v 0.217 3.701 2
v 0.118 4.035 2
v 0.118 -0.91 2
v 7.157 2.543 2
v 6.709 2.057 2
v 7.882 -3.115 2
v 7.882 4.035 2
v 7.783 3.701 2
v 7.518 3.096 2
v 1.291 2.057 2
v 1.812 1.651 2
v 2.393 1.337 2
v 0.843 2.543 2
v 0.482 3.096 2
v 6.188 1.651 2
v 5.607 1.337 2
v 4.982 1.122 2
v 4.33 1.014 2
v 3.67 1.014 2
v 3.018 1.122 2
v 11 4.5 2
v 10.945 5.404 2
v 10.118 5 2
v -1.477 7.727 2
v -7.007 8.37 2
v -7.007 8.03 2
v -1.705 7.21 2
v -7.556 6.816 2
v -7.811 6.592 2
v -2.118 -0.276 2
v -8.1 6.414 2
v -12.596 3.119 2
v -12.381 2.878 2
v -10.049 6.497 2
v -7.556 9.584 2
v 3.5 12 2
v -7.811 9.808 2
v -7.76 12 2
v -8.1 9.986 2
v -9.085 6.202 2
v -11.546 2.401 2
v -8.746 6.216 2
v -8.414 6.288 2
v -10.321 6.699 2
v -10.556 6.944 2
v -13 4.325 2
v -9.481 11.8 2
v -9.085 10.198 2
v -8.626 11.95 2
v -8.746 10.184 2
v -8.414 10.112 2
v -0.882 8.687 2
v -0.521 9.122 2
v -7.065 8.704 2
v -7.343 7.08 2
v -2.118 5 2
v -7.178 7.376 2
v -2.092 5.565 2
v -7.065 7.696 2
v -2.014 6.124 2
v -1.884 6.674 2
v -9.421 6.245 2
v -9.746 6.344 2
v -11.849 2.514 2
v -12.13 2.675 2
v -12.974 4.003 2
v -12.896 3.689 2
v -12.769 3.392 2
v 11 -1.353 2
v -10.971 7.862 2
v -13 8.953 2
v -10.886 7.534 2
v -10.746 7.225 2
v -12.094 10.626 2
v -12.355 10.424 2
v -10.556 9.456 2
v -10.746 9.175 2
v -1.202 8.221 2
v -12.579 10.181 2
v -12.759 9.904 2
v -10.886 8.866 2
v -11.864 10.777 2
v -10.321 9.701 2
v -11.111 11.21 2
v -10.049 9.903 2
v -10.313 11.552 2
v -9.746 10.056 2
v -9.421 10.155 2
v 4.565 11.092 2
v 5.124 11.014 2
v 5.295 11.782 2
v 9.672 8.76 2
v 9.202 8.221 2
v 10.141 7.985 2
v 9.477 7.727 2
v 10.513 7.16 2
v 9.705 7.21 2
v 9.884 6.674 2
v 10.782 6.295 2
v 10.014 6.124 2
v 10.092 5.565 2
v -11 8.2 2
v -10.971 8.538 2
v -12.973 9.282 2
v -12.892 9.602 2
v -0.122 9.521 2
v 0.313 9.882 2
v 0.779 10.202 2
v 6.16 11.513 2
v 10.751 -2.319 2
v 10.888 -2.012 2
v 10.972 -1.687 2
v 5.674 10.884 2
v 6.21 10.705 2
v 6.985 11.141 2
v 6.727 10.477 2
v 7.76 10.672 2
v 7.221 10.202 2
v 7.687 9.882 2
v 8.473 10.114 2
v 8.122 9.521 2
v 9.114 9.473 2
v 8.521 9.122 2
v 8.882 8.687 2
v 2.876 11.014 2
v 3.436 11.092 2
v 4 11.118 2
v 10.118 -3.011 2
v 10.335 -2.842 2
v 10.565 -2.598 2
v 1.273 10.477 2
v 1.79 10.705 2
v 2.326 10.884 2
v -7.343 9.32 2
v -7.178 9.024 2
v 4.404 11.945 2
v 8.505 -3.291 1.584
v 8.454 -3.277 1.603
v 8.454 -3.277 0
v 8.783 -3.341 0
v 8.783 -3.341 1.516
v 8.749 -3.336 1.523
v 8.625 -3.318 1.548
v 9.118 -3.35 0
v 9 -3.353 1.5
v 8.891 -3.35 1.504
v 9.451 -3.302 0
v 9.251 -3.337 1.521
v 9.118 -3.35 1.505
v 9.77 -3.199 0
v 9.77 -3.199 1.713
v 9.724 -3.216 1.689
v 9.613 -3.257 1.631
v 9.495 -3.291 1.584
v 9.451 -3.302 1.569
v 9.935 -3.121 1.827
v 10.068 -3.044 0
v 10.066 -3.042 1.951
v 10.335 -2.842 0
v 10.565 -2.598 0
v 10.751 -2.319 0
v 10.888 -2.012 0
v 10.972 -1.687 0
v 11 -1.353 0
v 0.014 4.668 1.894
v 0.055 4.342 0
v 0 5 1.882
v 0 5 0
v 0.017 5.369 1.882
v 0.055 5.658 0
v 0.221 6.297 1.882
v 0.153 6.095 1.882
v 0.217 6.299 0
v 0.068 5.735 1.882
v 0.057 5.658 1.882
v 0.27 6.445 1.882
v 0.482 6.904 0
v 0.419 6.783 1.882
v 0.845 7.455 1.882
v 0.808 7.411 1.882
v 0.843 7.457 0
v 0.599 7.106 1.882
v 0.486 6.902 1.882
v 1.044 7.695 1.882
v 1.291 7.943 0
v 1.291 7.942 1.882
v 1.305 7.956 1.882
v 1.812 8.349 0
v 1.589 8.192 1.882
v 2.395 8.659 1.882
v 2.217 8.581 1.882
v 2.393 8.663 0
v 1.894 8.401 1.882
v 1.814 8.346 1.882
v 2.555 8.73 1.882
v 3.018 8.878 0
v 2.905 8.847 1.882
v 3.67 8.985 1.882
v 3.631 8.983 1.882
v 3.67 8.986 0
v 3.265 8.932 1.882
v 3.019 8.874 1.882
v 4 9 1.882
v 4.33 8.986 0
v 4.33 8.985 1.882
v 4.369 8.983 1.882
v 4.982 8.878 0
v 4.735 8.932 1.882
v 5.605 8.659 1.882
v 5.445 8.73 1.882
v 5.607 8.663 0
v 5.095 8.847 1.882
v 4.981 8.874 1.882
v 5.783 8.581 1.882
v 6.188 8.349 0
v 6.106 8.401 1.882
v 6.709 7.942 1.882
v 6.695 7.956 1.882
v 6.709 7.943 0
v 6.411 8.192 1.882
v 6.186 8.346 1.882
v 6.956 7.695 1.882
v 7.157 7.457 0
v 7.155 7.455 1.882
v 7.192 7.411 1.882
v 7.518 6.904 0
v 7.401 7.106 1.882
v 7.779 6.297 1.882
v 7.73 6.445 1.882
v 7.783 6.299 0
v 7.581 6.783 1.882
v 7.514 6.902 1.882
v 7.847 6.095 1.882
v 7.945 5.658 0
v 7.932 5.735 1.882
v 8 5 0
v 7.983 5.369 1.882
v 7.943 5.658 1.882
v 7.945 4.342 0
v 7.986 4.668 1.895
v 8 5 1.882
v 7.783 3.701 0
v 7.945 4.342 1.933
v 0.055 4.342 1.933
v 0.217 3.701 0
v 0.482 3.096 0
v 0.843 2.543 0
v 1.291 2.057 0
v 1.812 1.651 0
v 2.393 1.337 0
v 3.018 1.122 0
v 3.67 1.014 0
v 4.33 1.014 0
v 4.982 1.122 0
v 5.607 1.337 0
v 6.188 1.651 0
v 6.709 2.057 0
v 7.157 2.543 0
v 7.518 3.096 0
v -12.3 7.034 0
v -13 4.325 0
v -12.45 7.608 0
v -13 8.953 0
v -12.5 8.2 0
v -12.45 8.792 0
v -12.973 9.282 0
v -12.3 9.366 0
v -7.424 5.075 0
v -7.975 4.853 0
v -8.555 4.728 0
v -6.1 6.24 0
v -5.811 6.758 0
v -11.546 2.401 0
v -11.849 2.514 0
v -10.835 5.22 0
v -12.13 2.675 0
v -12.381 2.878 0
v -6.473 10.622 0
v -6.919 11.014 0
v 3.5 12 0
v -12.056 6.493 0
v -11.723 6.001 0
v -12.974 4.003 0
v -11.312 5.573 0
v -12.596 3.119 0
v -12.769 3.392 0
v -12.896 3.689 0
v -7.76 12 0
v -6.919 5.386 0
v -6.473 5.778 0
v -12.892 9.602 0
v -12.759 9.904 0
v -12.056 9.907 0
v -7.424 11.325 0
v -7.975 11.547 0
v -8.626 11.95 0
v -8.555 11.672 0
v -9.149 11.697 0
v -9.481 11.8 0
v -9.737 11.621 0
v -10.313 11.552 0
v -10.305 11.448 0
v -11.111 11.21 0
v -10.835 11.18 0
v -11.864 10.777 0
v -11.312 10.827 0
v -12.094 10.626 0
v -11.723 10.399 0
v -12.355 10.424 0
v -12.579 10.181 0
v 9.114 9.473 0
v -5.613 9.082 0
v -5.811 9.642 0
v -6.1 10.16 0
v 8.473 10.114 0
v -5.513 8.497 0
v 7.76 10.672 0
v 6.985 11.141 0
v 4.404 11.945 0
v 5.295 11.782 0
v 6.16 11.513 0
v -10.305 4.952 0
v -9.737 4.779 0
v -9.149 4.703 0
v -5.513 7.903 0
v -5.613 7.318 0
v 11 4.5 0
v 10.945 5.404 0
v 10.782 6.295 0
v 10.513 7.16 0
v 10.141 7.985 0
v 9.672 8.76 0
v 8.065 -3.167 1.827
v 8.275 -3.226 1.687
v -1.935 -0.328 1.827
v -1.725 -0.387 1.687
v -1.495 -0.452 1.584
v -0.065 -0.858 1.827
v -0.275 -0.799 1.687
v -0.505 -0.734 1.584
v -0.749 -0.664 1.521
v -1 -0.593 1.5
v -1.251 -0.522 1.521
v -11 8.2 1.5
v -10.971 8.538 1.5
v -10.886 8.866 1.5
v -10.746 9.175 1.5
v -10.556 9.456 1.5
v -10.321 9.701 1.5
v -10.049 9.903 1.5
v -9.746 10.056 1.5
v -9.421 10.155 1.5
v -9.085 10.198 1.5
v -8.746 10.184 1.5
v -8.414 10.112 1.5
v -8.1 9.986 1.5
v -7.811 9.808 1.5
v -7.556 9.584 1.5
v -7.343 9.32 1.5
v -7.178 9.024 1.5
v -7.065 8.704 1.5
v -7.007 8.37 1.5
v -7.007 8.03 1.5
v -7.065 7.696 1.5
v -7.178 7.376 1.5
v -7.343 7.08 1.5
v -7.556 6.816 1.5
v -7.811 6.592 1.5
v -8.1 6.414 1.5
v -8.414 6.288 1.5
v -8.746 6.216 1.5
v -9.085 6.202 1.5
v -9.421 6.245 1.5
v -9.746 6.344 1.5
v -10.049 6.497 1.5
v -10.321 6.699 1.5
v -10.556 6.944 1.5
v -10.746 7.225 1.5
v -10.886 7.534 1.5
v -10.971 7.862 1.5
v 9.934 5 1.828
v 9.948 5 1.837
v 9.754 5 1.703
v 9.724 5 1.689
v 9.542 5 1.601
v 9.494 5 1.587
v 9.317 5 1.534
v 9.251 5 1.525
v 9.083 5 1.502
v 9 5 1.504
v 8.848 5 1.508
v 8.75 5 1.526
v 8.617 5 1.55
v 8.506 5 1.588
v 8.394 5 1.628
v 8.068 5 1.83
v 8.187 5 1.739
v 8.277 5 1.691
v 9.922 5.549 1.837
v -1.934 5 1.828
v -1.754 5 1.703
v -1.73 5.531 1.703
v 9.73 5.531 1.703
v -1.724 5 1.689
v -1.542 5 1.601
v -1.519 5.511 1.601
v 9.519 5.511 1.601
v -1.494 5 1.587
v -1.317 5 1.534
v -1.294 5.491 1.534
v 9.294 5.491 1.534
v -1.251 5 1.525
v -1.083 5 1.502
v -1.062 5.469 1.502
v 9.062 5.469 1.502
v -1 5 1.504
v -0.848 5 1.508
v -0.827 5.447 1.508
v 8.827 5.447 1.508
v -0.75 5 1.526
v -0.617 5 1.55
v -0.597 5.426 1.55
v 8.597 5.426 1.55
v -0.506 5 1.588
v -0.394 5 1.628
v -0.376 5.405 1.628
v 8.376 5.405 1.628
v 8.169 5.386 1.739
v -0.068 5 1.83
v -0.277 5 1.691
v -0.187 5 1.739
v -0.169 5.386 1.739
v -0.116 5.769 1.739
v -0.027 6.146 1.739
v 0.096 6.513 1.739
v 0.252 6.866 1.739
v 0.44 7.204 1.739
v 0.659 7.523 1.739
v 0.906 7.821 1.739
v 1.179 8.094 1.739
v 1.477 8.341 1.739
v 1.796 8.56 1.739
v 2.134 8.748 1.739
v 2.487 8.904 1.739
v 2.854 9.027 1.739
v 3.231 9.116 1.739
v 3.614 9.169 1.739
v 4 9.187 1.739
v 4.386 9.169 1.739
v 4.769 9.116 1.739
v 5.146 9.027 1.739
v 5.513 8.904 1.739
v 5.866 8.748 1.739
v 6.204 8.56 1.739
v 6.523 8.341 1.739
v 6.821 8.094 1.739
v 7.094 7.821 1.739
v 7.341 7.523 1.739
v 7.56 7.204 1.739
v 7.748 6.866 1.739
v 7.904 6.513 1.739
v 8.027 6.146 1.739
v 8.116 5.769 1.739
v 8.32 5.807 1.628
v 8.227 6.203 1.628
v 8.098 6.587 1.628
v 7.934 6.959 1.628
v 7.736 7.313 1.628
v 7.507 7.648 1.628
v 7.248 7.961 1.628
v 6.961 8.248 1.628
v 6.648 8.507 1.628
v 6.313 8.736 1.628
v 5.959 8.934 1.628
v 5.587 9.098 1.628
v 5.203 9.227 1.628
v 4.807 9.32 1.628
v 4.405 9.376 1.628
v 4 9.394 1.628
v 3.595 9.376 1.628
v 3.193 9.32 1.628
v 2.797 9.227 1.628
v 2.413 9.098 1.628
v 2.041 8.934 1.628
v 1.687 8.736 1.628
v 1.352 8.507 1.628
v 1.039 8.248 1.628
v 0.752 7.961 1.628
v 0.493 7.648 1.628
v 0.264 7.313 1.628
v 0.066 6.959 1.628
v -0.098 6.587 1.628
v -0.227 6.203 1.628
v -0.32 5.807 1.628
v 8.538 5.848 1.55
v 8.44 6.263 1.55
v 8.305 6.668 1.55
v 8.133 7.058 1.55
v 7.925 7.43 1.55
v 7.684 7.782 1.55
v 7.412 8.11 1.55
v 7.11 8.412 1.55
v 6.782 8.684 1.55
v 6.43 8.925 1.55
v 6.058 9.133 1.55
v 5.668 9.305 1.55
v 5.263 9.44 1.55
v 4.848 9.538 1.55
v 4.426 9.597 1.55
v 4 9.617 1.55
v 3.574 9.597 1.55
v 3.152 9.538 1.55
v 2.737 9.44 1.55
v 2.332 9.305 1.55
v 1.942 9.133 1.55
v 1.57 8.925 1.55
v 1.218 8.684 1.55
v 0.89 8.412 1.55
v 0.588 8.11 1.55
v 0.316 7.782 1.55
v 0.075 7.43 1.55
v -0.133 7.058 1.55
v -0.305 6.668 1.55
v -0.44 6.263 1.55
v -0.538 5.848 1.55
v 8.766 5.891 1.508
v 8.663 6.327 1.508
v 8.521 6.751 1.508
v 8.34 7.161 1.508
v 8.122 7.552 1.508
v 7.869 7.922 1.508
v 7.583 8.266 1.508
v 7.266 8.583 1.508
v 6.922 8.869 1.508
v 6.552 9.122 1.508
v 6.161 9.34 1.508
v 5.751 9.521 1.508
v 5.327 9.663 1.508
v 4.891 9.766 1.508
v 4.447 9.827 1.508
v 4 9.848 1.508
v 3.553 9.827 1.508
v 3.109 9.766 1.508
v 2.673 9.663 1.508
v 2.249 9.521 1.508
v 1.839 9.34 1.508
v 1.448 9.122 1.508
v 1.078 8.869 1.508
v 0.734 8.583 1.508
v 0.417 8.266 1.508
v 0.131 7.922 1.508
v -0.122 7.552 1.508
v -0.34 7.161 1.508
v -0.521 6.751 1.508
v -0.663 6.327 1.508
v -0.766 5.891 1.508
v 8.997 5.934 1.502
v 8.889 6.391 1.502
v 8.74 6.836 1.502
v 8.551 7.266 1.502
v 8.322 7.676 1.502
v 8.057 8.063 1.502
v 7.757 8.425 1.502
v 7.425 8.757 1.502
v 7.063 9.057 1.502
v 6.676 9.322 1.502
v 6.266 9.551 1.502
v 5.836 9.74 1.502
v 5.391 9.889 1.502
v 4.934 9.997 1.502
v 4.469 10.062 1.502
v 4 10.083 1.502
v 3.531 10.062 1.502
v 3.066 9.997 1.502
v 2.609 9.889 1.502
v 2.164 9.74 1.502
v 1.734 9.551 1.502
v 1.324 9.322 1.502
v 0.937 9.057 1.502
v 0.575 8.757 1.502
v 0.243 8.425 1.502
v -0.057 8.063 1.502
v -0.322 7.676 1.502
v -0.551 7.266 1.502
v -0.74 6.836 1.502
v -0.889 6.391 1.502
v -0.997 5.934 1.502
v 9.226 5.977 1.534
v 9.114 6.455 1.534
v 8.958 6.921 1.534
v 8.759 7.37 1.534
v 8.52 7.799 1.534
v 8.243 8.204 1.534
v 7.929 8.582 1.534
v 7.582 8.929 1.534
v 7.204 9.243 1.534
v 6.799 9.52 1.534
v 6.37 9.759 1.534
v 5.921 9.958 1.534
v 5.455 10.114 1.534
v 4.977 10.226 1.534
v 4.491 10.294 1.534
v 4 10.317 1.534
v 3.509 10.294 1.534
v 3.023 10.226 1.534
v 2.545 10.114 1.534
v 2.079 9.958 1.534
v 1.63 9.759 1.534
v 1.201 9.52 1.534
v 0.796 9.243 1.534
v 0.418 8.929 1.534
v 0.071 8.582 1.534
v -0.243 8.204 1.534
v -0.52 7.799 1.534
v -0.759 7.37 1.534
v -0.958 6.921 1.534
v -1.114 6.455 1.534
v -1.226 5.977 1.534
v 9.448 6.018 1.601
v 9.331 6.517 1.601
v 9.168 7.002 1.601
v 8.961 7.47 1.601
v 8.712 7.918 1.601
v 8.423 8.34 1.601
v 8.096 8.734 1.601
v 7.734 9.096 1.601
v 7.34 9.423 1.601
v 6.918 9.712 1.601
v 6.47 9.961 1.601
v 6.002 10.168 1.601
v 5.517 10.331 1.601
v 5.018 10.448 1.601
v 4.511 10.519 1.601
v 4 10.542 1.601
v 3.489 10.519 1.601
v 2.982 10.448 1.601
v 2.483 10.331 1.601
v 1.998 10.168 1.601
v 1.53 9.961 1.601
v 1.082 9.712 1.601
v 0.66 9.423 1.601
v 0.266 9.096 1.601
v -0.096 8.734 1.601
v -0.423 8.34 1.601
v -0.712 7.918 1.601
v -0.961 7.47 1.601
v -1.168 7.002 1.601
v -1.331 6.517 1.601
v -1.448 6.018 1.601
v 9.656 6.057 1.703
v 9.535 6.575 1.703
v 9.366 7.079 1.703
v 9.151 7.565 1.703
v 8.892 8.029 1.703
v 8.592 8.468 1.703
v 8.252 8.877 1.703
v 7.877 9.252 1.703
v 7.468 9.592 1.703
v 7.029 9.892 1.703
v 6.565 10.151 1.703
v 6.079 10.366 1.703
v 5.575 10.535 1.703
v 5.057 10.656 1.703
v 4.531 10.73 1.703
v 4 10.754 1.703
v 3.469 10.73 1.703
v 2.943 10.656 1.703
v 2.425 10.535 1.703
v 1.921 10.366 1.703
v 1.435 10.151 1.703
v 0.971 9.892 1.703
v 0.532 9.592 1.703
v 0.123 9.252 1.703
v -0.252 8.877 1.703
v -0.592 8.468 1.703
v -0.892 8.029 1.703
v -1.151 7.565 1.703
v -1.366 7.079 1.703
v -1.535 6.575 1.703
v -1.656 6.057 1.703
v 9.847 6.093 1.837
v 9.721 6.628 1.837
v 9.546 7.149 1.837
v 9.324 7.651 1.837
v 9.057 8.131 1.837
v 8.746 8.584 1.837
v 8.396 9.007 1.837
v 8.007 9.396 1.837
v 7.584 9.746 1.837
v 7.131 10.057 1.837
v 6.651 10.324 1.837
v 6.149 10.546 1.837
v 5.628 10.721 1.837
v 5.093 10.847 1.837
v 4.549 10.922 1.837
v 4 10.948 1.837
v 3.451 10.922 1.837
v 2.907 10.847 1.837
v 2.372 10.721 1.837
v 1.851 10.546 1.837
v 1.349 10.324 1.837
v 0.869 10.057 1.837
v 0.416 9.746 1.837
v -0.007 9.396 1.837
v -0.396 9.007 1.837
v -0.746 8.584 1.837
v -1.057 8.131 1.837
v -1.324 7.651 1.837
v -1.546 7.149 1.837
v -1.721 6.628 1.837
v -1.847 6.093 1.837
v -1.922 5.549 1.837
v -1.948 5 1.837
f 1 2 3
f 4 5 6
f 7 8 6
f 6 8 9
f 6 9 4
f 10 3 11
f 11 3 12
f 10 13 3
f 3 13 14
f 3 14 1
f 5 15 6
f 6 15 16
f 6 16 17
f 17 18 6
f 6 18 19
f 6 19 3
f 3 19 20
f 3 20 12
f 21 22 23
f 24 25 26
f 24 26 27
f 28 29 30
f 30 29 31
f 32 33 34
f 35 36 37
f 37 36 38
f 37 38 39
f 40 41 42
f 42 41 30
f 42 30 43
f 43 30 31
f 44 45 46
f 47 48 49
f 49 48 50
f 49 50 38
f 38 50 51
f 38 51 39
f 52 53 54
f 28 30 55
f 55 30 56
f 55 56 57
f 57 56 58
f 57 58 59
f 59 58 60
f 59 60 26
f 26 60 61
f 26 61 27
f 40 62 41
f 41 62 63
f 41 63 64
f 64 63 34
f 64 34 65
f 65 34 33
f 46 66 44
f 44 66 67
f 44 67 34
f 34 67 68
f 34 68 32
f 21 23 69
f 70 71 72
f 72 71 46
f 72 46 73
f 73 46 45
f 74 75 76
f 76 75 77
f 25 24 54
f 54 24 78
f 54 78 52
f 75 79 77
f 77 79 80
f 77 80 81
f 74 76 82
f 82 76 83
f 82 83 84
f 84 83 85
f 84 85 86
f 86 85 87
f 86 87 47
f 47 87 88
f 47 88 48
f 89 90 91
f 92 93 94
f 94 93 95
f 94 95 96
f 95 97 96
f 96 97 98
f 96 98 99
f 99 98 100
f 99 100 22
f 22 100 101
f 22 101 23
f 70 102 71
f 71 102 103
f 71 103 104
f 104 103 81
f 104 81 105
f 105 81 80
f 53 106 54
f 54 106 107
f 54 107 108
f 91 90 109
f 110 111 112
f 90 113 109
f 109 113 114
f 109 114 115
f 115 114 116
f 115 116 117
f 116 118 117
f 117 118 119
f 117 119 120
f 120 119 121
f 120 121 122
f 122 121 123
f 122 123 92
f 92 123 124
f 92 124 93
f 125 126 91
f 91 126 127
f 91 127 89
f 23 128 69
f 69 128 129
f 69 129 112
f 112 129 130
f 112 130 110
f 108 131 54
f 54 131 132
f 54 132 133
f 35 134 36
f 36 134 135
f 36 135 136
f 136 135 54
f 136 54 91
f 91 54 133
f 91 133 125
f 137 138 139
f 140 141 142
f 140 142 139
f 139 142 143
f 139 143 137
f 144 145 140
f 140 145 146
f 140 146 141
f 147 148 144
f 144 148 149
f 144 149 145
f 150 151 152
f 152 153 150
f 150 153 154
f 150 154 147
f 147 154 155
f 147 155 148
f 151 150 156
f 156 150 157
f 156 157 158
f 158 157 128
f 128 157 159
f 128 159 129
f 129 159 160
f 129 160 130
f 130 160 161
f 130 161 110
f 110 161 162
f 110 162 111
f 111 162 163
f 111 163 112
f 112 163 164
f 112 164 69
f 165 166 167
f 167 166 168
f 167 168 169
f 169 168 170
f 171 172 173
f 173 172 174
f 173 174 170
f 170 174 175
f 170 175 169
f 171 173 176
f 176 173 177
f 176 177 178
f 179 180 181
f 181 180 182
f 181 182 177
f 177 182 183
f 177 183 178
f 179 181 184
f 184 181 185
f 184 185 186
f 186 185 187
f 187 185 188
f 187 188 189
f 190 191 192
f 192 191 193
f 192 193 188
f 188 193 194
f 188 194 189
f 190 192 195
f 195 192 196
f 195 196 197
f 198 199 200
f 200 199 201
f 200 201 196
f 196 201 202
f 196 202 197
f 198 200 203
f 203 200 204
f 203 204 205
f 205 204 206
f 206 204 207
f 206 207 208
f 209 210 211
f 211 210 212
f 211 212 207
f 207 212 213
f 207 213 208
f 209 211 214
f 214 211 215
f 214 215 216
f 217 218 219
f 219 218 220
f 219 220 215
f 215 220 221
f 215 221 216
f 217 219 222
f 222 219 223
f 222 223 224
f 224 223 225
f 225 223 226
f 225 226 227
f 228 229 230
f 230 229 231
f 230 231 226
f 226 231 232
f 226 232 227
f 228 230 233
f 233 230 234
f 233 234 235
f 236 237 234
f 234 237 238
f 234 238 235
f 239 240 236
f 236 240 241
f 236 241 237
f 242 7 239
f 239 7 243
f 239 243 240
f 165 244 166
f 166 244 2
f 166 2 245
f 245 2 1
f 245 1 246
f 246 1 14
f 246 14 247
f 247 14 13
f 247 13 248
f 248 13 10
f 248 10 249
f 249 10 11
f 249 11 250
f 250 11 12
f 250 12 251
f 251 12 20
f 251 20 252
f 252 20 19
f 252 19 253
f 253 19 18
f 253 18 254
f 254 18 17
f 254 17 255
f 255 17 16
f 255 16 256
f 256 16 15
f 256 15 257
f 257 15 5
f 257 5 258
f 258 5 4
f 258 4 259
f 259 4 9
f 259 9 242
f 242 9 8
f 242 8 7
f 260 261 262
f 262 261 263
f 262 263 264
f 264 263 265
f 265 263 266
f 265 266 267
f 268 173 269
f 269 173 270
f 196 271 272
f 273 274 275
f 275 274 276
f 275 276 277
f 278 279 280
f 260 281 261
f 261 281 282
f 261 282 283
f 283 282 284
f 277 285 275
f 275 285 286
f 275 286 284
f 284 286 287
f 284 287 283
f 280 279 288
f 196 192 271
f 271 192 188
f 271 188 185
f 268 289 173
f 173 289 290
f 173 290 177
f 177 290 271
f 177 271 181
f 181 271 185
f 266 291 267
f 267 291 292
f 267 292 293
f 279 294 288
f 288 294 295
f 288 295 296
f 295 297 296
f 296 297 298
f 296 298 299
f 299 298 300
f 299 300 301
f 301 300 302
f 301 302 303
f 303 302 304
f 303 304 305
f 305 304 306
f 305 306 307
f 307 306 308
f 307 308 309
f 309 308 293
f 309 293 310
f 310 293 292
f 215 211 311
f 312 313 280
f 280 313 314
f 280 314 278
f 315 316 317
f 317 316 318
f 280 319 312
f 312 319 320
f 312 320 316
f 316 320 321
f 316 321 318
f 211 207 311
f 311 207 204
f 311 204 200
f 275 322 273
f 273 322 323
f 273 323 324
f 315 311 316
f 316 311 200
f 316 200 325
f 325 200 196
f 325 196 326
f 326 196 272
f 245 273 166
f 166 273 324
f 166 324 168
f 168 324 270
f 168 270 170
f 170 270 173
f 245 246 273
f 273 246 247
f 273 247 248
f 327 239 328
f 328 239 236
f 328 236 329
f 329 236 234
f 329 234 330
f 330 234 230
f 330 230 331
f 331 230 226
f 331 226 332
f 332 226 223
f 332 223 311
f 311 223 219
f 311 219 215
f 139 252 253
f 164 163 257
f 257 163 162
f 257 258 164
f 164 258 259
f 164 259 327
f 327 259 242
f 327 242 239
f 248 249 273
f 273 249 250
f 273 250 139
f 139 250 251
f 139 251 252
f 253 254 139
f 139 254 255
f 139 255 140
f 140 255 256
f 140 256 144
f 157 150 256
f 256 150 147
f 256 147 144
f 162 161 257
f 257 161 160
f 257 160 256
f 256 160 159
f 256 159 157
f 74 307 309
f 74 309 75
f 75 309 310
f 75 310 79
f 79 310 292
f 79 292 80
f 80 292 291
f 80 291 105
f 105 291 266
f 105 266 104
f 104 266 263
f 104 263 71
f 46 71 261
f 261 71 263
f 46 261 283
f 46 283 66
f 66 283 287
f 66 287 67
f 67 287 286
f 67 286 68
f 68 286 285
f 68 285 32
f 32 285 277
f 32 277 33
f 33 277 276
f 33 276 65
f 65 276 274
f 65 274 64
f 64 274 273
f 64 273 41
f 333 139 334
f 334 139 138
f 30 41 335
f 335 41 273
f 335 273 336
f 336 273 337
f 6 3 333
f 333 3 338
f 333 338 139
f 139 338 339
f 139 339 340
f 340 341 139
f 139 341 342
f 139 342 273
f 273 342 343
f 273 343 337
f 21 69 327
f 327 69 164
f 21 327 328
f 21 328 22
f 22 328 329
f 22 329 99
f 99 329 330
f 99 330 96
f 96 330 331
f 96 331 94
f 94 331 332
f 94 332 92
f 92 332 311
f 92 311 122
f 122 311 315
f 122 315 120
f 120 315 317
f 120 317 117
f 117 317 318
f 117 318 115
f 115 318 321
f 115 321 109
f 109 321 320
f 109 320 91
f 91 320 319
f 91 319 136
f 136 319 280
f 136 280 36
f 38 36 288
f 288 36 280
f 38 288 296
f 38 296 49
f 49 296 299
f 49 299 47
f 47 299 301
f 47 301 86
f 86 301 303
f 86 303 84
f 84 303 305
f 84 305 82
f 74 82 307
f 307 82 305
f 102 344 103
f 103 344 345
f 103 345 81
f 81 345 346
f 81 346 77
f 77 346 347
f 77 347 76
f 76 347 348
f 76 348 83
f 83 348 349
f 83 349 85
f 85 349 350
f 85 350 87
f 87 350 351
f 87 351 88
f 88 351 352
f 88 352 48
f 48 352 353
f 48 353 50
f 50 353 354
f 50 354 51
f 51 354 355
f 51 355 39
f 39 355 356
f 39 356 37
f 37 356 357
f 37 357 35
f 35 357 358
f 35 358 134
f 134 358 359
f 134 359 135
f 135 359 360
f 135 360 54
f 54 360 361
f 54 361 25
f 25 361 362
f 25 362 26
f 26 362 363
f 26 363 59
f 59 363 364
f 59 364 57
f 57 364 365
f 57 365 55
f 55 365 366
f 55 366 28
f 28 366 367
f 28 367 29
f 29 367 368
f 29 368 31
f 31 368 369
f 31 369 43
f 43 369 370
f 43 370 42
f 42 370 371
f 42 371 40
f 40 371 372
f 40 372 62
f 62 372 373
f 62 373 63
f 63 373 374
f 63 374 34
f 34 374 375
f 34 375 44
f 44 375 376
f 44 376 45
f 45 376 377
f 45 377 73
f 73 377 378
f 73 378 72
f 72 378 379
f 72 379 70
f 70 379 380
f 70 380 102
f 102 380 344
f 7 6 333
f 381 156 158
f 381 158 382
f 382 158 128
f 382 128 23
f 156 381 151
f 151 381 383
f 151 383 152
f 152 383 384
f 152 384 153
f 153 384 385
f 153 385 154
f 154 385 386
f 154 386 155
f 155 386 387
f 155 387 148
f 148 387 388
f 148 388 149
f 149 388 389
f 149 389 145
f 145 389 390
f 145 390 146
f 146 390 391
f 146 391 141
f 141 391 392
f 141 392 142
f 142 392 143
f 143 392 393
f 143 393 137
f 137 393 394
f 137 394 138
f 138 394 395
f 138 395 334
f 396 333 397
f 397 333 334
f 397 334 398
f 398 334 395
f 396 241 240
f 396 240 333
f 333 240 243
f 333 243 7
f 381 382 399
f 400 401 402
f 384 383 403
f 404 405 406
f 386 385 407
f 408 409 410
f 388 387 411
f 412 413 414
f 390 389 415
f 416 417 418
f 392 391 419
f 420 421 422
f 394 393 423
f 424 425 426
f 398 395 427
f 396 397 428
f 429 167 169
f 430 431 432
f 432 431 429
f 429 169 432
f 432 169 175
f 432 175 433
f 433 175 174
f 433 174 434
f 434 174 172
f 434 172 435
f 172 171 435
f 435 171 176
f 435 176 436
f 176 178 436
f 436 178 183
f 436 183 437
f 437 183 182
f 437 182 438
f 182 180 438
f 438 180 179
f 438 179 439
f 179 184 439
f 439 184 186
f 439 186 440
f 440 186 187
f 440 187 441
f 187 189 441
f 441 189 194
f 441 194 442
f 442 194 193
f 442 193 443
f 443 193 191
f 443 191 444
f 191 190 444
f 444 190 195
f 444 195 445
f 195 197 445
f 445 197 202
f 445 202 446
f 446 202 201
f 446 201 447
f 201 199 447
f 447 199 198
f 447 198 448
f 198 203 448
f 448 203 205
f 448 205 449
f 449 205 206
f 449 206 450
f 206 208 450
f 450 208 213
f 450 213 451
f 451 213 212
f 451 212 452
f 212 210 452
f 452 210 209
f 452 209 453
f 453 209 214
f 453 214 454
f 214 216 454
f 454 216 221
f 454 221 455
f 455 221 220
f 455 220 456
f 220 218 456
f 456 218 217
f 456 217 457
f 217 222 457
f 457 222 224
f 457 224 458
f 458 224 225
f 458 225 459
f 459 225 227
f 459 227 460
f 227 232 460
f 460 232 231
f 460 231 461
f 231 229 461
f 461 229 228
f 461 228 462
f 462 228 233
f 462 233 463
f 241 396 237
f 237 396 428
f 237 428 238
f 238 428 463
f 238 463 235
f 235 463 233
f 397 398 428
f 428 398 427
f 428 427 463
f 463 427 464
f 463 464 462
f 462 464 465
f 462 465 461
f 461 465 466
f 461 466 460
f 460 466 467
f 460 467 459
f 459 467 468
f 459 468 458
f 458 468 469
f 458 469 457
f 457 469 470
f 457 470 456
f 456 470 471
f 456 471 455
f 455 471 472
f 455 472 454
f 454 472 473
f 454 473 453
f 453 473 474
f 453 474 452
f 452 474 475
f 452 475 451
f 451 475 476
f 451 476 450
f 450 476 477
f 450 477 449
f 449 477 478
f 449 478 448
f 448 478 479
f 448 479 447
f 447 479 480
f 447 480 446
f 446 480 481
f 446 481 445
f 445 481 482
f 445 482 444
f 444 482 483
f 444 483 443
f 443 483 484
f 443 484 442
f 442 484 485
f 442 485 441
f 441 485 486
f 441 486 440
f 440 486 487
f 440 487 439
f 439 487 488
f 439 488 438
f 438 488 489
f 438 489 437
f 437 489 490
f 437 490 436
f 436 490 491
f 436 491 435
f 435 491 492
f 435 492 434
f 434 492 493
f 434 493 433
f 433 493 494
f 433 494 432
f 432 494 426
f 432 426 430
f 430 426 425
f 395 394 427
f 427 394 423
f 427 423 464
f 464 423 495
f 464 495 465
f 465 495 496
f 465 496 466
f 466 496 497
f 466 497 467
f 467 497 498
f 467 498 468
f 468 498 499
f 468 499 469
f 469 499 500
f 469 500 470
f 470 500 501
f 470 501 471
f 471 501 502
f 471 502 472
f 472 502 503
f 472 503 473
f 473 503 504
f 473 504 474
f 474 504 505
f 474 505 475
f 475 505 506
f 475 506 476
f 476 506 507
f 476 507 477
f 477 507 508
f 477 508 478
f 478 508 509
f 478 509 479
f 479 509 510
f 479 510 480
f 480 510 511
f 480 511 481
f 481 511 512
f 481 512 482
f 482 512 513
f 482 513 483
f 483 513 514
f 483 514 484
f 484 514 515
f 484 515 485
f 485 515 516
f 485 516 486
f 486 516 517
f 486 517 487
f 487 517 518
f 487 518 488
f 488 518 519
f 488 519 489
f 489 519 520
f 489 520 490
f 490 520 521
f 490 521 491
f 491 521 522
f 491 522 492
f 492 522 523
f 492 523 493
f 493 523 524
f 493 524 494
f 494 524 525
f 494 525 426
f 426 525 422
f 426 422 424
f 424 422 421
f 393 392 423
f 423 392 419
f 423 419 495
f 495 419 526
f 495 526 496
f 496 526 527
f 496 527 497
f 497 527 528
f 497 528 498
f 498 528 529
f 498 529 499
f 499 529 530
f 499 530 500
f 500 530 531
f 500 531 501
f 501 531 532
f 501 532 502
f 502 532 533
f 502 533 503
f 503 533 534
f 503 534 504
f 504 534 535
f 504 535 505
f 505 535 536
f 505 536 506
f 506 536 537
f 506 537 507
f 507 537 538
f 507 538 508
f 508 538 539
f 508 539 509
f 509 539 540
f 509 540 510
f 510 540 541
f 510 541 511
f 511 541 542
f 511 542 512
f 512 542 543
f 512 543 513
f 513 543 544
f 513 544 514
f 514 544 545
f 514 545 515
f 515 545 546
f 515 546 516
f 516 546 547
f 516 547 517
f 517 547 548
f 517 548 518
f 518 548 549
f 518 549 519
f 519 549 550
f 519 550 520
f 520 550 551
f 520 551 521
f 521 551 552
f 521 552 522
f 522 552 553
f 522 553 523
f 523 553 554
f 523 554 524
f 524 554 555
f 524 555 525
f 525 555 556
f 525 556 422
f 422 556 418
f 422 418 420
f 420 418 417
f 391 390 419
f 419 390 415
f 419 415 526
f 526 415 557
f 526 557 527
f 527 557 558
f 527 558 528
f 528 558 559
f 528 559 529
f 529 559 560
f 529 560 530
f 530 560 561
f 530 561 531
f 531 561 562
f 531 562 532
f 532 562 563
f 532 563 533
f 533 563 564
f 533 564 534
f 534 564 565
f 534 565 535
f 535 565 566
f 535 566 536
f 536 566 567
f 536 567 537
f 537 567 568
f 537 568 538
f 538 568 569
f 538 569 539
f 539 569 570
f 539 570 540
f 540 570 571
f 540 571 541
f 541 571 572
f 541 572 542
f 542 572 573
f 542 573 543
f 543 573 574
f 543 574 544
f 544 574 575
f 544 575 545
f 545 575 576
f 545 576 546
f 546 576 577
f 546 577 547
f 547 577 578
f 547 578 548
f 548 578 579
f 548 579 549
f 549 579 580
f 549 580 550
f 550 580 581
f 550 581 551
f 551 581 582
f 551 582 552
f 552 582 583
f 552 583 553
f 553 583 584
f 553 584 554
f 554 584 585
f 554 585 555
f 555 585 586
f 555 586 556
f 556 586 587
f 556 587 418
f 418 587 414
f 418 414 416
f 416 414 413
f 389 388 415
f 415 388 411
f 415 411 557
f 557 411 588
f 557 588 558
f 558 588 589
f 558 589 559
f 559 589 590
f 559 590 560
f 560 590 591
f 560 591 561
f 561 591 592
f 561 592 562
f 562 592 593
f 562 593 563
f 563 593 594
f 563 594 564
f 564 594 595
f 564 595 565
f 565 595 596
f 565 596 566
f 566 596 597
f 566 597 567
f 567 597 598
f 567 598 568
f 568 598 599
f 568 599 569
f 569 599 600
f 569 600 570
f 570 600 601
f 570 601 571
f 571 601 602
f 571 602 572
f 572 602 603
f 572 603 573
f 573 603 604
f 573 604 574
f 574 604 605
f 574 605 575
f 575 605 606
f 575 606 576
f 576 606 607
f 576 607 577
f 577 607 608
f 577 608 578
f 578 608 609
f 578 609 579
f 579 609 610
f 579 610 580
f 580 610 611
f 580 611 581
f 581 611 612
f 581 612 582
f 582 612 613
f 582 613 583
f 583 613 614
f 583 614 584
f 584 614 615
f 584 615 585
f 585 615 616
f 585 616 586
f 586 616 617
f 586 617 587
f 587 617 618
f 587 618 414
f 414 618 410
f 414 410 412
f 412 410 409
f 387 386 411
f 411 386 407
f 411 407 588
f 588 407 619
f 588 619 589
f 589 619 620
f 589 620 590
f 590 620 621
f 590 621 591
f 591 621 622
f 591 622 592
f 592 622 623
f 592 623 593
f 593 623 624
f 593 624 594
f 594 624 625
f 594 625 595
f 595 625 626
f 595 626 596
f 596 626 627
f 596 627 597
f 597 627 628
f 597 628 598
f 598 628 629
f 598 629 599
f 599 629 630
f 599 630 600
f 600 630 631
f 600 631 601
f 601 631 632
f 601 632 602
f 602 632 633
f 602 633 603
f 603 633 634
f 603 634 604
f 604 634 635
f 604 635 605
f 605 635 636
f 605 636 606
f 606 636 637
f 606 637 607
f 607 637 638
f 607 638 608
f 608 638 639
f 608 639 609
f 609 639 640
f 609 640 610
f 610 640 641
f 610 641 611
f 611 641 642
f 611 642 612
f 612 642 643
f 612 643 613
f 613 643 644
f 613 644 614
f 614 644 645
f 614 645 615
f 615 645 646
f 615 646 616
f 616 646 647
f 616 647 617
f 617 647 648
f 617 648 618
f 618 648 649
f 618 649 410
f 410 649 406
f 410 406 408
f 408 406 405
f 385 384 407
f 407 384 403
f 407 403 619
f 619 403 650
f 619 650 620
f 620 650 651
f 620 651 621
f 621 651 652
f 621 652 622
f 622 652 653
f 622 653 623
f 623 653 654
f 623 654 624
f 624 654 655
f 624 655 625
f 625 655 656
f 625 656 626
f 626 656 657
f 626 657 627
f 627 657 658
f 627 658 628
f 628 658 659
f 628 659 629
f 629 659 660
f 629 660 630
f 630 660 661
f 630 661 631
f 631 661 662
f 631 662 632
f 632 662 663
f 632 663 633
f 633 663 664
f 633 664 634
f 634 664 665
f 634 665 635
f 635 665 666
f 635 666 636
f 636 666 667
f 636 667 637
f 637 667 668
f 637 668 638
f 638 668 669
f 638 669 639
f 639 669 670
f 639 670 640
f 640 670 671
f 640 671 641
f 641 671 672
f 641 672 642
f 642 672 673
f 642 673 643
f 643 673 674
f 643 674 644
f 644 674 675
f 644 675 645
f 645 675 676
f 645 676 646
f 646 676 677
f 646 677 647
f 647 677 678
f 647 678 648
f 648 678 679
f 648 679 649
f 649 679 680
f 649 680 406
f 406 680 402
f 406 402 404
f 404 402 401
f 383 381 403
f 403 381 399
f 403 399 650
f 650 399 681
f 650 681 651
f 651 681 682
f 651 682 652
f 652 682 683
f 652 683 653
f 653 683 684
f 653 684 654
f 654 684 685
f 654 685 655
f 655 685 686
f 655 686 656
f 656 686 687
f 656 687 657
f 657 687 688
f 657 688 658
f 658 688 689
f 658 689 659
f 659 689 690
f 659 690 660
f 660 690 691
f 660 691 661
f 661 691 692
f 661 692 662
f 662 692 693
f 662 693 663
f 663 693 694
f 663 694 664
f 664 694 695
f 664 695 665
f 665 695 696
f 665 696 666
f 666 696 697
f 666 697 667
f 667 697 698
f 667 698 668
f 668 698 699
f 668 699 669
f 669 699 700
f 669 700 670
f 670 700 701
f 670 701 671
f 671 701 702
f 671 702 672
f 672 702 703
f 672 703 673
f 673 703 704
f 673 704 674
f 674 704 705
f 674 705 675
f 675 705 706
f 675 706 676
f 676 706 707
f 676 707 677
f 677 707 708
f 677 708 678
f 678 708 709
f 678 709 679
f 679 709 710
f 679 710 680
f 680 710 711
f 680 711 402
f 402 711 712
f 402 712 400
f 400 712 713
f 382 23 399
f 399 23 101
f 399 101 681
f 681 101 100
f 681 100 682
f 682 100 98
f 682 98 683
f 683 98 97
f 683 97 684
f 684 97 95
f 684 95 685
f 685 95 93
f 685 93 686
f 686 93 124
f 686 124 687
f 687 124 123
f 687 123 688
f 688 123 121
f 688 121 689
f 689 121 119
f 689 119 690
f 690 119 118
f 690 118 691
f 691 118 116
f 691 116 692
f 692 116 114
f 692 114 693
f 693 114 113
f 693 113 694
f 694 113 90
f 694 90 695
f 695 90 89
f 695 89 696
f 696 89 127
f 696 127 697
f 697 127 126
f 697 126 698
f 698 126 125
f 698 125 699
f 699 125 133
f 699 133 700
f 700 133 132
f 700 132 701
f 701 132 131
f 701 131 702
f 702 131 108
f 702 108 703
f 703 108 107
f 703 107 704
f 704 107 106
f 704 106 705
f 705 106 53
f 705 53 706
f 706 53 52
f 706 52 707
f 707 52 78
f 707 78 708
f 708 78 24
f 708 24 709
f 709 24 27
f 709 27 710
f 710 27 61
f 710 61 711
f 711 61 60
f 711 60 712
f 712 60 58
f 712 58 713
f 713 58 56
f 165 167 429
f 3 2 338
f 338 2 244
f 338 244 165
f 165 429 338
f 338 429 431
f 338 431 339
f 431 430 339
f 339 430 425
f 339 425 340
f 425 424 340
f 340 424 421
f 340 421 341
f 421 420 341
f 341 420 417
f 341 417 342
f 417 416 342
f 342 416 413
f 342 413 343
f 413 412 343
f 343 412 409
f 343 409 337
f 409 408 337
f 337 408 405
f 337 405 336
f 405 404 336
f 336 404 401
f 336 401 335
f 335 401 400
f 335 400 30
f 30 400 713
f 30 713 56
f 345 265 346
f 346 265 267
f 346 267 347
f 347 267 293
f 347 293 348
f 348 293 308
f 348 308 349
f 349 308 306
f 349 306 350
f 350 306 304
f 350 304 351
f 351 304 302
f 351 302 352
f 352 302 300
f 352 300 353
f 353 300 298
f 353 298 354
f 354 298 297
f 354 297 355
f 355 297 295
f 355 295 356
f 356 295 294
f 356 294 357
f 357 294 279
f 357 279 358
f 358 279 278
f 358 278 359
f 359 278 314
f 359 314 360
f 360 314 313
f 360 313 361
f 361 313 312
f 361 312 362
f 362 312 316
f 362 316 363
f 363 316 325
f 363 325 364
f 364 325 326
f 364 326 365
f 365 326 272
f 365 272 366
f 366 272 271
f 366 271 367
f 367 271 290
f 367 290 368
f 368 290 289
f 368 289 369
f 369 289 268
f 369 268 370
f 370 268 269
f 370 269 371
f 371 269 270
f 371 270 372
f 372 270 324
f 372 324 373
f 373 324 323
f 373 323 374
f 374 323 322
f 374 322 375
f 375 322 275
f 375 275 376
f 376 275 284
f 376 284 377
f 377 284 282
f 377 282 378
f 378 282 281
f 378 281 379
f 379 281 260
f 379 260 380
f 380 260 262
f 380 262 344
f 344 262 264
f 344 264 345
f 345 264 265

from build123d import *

# Parameters (mm, degrees)
SKETCH1_R            = 4
SKETCH1_R_2          = 2
BOSS_EXTRUDE1_DEPTH  = 2
CUT_SWEEP2_PROFILE_R = 1.5
CHAMFER1_SIZE        = 1.5


with BuildPart() as part:
    # Sketch1 → Boss-Extrude1 (new body)
    with BuildSketch(Plane.XY):
        with BuildLine():
            Line((-13, 8.952546351), (-13, 4.3251588))
            ThreePointArc((-13, 4.3251588), (-12.595694104, 3.119438963), (-11.546239674, 2.401198764))
            Line((-11.546239674, 2.401198764), (8.453760326, -3.277086269))
            ThreePointArc((8.453760326, -3.277086269), (10.205719837, -2.948820337), (11, -1.353126233))
            Line((11, -1.353126233), (11, 4.5))
            ThreePointArc((11, 4.5), (8.803300859, 9.803300859), (3.5, 12))
            Line((3.5, 12), (-7.759513818, 12))
            ThreePointArc((-7.759513818, 12), (-9.900828742, 11.687820977), (-11.86388404, 10.777272105))
            Line((-11.86388404, 10.777272105), (-12.094498726, 10.626485579))
            ThreePointArc((-12.094498726, 10.626485579), (-12.759118736, 9.904124658), (-13, 8.952546351))
        make_face()
        with Locations((4, 5)):
            Circle(SKETCH1_R, mode=Mode.SUBTRACT)
        with Locations((-9, 8.2)):
            Circle(SKETCH1_R_2, mode=Mode.SUBTRACT)
    extrude(amount=BOSS_EXTRUDE1_DEPTH)

    # Cut-Sweep2: sweep along a path in Sketch19
    with BuildLine(Plane.XY.offset(3)) as cut_sweep2_path:
        Line((-1, -3.013992868), (-1, 5))
        ThreePointArc((-1, 5), (4, 10), (9, 5))
        Line((9, 5), (9, -6.134852042))
    # Cut-Sweep2 profile (on start of the path) → Cut-Sweep2 (sweep, cut)
    with BuildSketch(Plane(origin=(-1, -3.013992868, 3), x_dir=(0, 0, 1), z_dir=(0, 1, 0))):
        Circle(CUT_SWEEP2_PROFILE_R)
    sweep(path=cut_sweep2_path.line, mode=Mode.SUBTRACT)

    # Chamfer1
    chamfer1_edges = [part.edges().sort_by_distance(p)[0] for p in [
        (-11, 8.2, 0),
    ]]
    chamfer(chamfer1_edges, length=CHAMFER1_SIZE)


solid = part.part
